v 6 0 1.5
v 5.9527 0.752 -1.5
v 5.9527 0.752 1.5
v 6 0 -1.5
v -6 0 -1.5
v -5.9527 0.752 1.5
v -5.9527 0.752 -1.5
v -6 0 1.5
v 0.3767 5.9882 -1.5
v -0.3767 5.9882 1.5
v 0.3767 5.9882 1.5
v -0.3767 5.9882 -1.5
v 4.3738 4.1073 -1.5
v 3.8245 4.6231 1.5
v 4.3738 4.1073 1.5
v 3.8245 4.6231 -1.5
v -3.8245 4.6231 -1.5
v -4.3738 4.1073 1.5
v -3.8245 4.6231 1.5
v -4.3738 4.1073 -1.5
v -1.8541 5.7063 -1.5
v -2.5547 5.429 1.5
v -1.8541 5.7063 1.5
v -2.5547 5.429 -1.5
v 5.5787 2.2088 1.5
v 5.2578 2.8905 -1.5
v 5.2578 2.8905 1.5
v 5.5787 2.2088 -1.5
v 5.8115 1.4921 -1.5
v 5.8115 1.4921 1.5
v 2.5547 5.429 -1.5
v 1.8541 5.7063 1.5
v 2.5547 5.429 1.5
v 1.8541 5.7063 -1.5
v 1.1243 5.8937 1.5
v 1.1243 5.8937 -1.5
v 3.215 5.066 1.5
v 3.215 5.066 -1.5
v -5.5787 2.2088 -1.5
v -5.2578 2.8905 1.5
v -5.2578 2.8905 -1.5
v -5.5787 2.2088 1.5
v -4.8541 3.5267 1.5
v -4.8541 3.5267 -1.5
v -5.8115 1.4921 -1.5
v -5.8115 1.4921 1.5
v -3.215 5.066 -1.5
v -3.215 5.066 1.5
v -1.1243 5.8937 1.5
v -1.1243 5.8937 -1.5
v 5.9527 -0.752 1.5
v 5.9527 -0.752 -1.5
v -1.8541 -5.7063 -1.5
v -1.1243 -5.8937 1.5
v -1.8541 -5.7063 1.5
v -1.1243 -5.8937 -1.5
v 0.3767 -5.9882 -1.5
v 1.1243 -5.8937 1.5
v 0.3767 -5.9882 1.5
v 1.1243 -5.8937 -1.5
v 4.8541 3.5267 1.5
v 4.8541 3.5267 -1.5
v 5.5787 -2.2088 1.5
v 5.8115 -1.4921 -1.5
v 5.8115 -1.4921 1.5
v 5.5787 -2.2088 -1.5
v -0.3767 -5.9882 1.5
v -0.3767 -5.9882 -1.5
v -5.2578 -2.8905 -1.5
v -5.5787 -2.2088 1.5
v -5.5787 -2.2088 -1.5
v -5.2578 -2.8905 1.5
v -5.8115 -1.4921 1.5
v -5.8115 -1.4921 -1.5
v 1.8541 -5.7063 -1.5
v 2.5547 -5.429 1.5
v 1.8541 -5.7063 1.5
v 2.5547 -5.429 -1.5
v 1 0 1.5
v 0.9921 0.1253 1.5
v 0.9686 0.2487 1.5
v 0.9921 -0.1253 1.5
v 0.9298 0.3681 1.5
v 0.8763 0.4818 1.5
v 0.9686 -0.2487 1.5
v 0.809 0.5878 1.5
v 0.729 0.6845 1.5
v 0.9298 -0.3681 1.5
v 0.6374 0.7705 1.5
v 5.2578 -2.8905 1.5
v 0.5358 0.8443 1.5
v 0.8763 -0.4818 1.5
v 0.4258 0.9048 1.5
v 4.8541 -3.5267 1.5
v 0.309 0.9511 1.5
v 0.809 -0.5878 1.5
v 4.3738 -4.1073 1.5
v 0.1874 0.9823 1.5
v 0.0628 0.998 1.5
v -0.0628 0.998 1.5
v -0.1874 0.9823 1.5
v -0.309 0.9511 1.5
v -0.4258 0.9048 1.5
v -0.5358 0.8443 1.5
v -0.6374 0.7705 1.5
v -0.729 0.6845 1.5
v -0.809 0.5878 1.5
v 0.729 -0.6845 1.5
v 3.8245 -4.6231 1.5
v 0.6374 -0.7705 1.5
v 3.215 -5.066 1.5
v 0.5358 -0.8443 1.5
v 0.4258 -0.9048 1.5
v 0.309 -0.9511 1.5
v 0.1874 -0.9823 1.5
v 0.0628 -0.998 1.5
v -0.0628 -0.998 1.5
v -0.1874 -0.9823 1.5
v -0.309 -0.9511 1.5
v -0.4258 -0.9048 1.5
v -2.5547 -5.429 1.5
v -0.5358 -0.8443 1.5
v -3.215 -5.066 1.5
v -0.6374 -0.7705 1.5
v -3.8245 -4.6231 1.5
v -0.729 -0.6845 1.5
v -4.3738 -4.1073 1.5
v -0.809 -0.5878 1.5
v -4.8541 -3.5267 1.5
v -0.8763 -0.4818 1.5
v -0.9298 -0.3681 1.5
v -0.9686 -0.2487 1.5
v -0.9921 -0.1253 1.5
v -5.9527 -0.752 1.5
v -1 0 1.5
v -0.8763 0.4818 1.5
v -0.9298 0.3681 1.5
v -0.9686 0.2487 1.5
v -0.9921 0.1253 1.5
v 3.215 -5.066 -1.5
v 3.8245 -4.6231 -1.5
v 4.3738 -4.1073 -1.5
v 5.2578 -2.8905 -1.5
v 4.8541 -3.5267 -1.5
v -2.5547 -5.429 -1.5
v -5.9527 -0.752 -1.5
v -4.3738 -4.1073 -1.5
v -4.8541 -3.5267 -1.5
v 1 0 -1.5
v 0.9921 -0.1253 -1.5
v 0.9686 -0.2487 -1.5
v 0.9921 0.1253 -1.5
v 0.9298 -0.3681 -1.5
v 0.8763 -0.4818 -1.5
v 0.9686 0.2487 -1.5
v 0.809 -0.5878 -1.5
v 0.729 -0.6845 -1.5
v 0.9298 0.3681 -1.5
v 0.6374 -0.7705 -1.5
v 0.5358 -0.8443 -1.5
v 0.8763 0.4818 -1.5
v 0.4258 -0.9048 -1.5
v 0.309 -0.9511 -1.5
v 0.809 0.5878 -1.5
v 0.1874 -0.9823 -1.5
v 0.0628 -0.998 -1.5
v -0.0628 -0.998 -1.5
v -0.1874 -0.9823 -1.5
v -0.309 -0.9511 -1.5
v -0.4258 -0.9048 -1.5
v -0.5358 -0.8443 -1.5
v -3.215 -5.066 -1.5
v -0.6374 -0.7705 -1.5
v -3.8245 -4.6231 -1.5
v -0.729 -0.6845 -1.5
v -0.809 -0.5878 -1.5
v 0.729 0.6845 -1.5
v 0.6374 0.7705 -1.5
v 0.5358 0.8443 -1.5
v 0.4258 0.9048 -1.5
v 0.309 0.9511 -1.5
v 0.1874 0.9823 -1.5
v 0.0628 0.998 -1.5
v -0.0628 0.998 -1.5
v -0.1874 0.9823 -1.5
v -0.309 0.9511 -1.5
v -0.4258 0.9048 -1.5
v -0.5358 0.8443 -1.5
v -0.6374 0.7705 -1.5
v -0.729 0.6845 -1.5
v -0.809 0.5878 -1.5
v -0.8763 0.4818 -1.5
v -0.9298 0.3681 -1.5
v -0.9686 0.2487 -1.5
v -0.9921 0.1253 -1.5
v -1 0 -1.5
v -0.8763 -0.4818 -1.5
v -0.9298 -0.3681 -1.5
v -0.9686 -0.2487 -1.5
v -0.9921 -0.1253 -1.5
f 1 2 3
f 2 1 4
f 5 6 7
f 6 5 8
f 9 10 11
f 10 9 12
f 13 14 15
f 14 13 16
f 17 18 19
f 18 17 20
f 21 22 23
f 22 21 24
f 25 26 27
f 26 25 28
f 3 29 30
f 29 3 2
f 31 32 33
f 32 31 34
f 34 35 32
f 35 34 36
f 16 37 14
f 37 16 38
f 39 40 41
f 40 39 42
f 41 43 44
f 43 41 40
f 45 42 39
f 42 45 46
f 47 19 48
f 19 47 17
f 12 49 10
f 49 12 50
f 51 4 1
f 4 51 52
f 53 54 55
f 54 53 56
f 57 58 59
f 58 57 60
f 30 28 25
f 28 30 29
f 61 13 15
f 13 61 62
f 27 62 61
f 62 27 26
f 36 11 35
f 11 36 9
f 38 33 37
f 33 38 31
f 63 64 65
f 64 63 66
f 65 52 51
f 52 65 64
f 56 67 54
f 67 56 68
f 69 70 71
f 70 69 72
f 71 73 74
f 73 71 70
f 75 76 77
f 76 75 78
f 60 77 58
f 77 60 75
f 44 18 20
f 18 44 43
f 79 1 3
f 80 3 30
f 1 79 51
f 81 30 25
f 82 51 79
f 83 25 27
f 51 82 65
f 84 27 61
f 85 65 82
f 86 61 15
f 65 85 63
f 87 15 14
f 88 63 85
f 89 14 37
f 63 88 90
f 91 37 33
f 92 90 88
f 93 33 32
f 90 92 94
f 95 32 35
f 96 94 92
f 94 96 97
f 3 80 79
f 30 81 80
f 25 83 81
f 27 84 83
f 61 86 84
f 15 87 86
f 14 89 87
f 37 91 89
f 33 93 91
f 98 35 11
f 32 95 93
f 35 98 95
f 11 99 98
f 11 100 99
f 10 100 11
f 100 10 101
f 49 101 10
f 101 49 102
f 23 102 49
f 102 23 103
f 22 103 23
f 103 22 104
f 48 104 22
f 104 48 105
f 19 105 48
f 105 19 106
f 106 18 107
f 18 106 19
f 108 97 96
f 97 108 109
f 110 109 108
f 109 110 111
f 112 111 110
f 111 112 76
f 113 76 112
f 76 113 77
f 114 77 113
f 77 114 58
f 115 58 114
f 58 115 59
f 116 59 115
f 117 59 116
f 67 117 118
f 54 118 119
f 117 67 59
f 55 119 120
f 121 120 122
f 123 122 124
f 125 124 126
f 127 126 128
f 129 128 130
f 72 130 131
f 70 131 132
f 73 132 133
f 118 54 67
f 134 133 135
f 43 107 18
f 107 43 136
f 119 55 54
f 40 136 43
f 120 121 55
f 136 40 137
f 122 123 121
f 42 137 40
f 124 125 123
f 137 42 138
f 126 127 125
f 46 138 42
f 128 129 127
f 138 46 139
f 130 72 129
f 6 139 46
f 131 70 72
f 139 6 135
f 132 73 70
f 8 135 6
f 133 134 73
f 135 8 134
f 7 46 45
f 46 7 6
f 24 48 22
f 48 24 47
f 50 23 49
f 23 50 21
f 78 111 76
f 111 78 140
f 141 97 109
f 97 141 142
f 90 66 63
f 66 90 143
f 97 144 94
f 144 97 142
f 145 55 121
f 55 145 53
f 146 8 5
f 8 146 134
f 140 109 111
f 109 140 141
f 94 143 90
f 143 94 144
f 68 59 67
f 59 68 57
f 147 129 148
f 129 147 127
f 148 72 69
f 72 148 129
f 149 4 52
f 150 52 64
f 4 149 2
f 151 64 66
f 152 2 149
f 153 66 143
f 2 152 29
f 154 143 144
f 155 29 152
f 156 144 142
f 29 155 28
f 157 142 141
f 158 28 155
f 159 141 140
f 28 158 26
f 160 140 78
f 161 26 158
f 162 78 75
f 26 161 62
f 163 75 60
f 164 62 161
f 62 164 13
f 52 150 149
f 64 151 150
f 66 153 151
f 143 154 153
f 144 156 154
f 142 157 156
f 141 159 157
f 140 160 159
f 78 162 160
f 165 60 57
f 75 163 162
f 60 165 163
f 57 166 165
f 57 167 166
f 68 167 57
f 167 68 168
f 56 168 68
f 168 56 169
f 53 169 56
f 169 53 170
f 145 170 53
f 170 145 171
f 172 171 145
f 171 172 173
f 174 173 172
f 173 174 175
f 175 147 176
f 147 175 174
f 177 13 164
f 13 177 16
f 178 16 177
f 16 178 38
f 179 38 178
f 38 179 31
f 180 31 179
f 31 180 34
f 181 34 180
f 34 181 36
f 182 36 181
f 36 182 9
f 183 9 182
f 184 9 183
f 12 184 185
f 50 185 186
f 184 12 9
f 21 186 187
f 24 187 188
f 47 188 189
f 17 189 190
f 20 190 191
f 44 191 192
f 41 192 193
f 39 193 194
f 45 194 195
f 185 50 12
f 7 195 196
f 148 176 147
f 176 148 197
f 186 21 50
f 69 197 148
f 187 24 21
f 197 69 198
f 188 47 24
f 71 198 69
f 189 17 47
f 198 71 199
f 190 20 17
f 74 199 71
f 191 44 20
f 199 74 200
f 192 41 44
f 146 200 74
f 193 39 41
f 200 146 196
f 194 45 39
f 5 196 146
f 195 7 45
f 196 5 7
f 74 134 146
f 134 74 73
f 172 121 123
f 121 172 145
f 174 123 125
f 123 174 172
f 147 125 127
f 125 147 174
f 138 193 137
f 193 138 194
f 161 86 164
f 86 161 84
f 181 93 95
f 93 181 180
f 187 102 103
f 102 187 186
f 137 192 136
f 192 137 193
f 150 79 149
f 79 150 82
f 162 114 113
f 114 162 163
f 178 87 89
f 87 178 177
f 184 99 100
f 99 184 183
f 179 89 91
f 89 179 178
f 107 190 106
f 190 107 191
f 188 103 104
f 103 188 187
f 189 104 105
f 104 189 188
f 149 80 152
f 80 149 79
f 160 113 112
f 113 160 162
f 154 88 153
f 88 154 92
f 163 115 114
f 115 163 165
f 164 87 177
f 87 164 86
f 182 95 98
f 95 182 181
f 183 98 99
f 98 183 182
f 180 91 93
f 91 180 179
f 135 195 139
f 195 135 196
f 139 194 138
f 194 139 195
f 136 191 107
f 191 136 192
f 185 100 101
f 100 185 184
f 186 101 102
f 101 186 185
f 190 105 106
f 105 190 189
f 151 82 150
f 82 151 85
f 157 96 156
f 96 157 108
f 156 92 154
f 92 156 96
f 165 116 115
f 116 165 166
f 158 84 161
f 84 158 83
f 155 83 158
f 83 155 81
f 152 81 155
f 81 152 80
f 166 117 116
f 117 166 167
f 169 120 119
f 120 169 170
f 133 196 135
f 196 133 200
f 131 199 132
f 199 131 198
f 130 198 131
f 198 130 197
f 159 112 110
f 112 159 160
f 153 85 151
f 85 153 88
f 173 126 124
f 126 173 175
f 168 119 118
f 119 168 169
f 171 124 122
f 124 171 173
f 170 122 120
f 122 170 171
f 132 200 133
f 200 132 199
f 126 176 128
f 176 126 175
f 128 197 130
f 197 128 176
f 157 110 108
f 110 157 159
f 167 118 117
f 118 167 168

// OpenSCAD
$fn = 50;


difference() {
	union() {
		translate(v = [0, 0, -1.5000000000]) {
			cylinder(h = 3, r = 6.0000000000);
		}
	}
	union() {
		translate(v = [0, 0, -100.0000000000]) {
			cylinder(h = 200, r = 1.0000000000);
		}
	}
}
